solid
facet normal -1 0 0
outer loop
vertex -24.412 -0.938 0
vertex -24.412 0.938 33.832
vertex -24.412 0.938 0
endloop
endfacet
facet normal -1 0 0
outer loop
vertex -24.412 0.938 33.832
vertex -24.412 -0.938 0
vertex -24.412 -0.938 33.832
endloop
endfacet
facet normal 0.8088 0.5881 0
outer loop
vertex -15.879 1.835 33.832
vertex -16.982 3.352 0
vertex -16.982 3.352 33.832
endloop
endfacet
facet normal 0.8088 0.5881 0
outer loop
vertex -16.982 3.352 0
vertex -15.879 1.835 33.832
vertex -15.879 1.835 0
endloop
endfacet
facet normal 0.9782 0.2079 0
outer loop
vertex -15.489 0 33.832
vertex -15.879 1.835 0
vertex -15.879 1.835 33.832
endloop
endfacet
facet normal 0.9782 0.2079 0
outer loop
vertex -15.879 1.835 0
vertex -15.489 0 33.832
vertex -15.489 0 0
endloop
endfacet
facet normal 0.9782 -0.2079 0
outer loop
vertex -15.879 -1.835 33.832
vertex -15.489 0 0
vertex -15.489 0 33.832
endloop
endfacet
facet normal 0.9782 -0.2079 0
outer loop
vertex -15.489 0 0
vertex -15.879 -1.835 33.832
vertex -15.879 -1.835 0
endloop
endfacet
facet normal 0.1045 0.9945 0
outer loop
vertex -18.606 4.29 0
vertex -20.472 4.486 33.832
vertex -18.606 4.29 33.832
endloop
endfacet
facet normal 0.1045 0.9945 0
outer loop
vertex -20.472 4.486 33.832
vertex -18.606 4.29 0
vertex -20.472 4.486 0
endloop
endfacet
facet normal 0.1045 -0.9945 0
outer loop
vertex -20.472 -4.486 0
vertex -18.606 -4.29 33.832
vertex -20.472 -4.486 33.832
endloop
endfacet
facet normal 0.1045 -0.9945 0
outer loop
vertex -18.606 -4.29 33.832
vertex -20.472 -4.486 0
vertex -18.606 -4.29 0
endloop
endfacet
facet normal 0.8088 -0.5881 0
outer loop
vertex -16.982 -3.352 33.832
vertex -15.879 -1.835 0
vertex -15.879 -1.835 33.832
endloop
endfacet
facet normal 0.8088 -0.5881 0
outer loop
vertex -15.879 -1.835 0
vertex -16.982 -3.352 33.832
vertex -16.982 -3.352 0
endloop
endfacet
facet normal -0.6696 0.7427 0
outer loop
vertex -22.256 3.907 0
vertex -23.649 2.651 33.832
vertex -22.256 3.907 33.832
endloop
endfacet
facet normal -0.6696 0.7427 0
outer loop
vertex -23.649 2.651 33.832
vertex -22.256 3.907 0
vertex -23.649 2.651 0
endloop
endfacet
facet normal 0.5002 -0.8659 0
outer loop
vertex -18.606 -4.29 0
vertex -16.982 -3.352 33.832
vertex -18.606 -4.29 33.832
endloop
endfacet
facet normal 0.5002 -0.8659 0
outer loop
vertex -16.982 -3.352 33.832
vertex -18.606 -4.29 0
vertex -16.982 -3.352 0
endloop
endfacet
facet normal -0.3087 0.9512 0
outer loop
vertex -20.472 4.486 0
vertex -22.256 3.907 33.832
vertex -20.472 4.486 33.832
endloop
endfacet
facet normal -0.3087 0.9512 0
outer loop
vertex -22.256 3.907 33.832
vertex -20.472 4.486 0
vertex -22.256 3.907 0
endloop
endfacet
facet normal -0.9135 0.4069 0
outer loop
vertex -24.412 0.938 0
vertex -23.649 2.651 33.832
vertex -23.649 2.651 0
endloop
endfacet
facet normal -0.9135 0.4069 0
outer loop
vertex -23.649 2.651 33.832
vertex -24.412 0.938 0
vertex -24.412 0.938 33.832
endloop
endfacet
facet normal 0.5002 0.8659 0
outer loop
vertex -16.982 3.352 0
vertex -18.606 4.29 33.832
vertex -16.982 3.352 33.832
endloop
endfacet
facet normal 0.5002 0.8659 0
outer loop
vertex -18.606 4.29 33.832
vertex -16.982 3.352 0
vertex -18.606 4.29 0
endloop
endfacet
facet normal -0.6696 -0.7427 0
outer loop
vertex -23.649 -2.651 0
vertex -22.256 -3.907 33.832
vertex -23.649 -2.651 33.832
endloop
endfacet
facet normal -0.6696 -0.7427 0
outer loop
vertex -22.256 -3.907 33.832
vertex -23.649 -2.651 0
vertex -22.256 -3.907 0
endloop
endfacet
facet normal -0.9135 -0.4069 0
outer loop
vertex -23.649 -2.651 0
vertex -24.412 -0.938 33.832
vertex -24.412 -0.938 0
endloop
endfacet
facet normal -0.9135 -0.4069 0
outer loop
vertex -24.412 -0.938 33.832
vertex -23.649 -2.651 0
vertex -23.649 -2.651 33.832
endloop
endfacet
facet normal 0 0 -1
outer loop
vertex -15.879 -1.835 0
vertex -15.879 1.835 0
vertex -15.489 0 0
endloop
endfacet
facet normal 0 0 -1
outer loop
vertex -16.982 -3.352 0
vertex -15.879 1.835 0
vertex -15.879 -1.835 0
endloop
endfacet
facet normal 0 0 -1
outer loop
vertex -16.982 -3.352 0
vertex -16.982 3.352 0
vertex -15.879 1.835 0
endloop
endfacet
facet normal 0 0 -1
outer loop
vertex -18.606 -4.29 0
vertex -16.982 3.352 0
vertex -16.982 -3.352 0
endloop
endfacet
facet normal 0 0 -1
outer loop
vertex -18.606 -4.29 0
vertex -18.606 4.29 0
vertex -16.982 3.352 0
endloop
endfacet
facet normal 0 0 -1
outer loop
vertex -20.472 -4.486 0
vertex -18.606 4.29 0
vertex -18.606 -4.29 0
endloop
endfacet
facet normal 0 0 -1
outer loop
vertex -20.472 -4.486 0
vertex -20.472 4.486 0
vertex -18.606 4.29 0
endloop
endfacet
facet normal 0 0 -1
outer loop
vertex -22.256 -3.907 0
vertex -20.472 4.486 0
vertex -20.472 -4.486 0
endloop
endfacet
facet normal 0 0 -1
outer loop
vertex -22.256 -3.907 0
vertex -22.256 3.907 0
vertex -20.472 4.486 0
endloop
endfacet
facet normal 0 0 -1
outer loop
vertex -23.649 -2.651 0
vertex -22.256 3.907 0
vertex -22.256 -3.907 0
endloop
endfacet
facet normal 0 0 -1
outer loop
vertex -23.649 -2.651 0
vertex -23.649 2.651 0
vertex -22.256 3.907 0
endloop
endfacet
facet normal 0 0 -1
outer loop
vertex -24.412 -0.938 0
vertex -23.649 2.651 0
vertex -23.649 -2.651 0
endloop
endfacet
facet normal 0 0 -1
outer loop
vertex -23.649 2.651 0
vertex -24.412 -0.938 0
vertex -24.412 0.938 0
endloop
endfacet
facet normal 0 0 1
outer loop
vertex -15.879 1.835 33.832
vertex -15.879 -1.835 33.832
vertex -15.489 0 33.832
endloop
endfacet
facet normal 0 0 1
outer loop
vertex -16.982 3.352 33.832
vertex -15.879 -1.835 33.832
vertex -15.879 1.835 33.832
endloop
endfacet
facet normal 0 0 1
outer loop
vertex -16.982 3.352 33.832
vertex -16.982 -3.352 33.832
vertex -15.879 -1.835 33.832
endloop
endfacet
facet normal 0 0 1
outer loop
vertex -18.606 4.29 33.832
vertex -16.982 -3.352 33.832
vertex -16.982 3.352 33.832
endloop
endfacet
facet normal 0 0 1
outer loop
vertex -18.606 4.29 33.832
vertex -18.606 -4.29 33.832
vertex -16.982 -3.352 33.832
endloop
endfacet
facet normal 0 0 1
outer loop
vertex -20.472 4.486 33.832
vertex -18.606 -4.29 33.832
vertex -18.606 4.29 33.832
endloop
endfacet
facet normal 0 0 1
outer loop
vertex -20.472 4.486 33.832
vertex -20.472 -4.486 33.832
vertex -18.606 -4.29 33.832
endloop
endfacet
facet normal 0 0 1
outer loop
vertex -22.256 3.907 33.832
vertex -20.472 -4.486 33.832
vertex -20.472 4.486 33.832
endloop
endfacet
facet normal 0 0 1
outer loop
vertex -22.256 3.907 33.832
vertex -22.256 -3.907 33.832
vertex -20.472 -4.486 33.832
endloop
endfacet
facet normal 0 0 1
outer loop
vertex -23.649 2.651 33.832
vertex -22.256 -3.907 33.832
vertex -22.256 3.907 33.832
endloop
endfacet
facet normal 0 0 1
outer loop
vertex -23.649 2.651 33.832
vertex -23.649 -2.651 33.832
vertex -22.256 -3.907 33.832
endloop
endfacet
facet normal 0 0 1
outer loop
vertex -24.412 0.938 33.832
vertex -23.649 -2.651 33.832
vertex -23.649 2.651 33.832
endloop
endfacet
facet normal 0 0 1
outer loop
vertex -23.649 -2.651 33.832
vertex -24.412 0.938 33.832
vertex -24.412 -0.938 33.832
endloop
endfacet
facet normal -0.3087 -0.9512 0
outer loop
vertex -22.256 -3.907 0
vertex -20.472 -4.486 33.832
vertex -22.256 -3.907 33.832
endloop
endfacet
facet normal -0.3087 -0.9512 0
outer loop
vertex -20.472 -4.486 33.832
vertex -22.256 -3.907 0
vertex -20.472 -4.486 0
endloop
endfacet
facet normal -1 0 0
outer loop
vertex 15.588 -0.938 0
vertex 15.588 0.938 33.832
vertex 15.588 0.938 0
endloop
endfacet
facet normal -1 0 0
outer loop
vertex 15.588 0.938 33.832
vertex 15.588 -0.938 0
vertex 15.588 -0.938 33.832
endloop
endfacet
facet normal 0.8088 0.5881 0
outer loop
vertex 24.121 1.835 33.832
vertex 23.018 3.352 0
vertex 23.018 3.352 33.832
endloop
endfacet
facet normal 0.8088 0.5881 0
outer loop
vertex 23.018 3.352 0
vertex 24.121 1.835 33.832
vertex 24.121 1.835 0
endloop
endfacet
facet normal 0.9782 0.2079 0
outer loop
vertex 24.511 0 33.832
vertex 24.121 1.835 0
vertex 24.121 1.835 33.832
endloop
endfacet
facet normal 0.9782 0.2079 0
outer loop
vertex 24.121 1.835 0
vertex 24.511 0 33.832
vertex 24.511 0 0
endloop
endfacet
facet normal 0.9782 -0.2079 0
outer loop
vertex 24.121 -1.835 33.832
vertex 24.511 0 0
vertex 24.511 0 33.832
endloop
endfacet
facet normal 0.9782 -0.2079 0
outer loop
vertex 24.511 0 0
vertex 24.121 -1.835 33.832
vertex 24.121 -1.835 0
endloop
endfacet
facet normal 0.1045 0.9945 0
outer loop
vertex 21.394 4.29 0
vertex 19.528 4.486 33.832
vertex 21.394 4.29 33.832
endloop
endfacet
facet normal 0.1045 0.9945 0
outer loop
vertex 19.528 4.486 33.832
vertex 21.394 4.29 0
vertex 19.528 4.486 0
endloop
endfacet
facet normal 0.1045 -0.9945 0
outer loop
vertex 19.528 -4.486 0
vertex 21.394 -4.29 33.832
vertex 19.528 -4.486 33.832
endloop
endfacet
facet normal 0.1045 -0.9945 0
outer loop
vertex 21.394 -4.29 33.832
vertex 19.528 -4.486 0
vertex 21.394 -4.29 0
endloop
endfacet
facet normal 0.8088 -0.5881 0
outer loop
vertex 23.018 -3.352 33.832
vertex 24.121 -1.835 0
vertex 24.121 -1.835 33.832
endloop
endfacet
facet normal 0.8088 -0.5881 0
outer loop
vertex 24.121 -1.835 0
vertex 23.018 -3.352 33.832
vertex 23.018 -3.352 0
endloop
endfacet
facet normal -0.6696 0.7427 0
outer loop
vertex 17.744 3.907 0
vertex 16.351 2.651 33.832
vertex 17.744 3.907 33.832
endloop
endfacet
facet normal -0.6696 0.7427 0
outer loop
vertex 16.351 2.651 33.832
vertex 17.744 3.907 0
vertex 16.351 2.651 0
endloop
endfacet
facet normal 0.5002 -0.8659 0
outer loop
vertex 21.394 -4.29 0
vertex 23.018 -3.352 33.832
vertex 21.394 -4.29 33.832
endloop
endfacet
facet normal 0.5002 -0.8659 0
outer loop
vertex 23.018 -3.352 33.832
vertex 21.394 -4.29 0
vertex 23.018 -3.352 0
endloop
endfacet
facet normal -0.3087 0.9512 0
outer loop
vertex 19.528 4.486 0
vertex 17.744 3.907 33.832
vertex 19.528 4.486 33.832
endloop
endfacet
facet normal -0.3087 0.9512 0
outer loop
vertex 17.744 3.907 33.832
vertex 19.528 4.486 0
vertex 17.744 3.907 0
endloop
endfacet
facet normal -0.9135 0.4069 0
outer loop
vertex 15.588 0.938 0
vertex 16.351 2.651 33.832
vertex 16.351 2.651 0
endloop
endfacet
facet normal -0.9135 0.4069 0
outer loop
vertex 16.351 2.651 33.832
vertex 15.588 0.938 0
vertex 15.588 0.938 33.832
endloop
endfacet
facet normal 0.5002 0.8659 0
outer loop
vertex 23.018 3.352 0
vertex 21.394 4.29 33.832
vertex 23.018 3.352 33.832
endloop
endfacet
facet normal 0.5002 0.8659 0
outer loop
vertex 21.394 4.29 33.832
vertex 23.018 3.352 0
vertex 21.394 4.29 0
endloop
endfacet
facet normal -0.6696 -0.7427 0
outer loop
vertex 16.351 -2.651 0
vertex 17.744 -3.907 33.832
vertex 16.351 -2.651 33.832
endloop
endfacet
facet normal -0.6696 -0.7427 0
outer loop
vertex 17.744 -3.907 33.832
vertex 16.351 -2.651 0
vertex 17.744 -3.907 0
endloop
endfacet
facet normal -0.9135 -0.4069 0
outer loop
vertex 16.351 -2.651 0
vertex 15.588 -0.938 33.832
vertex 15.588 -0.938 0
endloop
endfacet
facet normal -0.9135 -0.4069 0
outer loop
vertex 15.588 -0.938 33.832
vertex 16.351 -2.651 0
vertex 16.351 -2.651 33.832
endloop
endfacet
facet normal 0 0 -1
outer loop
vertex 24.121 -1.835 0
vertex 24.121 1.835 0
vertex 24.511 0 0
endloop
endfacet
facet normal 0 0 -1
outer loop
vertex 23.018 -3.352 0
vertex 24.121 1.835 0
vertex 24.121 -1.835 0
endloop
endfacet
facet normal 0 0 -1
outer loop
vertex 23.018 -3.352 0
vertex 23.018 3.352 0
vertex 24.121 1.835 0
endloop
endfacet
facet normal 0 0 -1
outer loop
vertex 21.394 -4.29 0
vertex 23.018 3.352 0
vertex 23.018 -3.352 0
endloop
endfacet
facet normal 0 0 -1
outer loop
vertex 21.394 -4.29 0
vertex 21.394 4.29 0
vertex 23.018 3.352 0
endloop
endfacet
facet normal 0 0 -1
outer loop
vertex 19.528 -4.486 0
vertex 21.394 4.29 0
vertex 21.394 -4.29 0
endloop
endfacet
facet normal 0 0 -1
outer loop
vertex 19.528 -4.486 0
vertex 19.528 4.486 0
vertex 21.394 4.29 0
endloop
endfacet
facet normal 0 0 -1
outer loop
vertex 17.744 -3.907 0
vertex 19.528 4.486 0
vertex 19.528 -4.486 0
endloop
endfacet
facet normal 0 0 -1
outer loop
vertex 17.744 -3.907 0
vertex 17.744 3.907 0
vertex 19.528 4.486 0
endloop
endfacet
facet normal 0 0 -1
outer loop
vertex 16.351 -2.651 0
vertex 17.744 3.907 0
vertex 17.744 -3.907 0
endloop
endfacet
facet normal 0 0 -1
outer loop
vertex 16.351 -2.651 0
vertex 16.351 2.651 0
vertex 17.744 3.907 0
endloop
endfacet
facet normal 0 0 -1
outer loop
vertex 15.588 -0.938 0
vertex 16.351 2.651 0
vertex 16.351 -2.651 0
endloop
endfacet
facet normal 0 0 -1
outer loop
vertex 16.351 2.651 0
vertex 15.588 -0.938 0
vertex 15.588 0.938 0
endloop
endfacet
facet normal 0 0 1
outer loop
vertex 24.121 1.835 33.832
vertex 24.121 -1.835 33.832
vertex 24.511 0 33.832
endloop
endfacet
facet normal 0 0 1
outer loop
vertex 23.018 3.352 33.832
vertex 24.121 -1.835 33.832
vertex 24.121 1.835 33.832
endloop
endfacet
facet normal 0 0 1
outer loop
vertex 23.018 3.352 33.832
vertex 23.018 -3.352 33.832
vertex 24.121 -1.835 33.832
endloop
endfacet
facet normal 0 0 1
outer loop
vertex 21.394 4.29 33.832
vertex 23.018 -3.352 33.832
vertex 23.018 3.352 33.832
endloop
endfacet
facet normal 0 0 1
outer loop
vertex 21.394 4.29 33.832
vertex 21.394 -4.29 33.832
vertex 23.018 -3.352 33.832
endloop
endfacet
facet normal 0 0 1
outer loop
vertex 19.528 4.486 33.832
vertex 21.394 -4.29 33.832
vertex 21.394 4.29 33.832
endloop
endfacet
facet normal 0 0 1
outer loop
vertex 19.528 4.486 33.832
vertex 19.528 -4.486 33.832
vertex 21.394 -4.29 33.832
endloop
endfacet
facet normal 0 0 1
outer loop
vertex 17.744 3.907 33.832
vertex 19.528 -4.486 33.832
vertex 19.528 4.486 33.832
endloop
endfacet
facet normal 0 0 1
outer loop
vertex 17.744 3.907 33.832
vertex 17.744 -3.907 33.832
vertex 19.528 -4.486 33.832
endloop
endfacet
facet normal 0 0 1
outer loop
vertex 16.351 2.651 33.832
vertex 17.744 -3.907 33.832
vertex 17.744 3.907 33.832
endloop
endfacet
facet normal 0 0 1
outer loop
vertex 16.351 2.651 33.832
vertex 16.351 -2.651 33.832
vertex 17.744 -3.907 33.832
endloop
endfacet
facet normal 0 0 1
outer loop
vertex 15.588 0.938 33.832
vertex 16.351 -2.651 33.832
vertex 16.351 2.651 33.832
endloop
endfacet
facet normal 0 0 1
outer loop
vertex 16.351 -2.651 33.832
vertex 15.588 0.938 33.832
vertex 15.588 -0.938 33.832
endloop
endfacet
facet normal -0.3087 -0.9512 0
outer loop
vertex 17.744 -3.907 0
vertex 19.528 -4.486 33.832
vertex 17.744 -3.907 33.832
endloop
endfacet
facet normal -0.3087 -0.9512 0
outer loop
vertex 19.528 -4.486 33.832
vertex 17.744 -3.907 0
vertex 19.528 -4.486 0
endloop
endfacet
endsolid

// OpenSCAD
/* doodle-meta {"version":1,"parameters":{"rod_diameter":{"label":"Rod Diameter","description":"Diameter of the circular cross-section of the handle","unit":"mm","feature":"rod_profile"},"arch_radius":{"label":"Arch Radius","description":"Radius of the semi-circular bend (centerline)","unit":"mm","feature":"arch"},"leg_length":{"label":"Leg Length","description":"Length of the straight vertical legs","unit":"mm","feature":"legs"}},"features":{"rod_profile":{"kind":"region","label":"Rod Cross-section","min":[0,0,0],"max":[0,0,0]},"arch":{"kind":"region","label":"Arch","min":[0,0,0],"max":[0,0,0]},"legs":{"kind":"region","label":"Legs","min":[0,0,0],"max":[0,0,0]}}} */

// Parameters
rod_diameter = 9.021802689833764;
arch_radius = 20;
leg_length = 33.83176008687661;

// Derived dimensions
r = rod_diameter / 2;
R = arch_radius;
L = leg_length;

// The handle is oriented with the U-shape in the XZ plane.
// Legs are vertical (along Z).
// Rod extends along Y.
// Bottom of legs at Z=0.

module handle() {
    // Left Leg
    // Cylinder axis is Z. Centered at Z=L/2 to span 0 to L.
    translate([-R, 0, L/2])
    cylinder(h=L, r=r, center=true);

    // Right Leg
    translate([R, 0, L/2])
    cylinder(h=L, r=r, center=true);

    // Arch (Upper half of torus)
    // Torus centered at (0,0,L)
    // Rotate 90 deg around X to put ring in XZ plane (axis Y)
    difference() {
        translate([0, 0, L])
        rotate([90, 0, 0])
        torus(R, r);
        
        // Cut off the bottom half (Z < L)
        // The torus is centered at Z=L.
        // We remove everything below Z=L.
        translate([-100, -100, L - 100])
        cube([200, 200, 100]);
    }
}

// Instantiate
handle();

// Helper module for Torus
module torus(R, r) {
    // Create a circle in the XZ plane (relative to local origin)
    // and revolve it around the Z axis.
    // The circle is centered at (R, 0, 0) in the XZ plane.
    // rotate_extrude revolves around Z.
    translate([R, 0, 0])
    rotate_extrude()
    circle(r=r);
}
